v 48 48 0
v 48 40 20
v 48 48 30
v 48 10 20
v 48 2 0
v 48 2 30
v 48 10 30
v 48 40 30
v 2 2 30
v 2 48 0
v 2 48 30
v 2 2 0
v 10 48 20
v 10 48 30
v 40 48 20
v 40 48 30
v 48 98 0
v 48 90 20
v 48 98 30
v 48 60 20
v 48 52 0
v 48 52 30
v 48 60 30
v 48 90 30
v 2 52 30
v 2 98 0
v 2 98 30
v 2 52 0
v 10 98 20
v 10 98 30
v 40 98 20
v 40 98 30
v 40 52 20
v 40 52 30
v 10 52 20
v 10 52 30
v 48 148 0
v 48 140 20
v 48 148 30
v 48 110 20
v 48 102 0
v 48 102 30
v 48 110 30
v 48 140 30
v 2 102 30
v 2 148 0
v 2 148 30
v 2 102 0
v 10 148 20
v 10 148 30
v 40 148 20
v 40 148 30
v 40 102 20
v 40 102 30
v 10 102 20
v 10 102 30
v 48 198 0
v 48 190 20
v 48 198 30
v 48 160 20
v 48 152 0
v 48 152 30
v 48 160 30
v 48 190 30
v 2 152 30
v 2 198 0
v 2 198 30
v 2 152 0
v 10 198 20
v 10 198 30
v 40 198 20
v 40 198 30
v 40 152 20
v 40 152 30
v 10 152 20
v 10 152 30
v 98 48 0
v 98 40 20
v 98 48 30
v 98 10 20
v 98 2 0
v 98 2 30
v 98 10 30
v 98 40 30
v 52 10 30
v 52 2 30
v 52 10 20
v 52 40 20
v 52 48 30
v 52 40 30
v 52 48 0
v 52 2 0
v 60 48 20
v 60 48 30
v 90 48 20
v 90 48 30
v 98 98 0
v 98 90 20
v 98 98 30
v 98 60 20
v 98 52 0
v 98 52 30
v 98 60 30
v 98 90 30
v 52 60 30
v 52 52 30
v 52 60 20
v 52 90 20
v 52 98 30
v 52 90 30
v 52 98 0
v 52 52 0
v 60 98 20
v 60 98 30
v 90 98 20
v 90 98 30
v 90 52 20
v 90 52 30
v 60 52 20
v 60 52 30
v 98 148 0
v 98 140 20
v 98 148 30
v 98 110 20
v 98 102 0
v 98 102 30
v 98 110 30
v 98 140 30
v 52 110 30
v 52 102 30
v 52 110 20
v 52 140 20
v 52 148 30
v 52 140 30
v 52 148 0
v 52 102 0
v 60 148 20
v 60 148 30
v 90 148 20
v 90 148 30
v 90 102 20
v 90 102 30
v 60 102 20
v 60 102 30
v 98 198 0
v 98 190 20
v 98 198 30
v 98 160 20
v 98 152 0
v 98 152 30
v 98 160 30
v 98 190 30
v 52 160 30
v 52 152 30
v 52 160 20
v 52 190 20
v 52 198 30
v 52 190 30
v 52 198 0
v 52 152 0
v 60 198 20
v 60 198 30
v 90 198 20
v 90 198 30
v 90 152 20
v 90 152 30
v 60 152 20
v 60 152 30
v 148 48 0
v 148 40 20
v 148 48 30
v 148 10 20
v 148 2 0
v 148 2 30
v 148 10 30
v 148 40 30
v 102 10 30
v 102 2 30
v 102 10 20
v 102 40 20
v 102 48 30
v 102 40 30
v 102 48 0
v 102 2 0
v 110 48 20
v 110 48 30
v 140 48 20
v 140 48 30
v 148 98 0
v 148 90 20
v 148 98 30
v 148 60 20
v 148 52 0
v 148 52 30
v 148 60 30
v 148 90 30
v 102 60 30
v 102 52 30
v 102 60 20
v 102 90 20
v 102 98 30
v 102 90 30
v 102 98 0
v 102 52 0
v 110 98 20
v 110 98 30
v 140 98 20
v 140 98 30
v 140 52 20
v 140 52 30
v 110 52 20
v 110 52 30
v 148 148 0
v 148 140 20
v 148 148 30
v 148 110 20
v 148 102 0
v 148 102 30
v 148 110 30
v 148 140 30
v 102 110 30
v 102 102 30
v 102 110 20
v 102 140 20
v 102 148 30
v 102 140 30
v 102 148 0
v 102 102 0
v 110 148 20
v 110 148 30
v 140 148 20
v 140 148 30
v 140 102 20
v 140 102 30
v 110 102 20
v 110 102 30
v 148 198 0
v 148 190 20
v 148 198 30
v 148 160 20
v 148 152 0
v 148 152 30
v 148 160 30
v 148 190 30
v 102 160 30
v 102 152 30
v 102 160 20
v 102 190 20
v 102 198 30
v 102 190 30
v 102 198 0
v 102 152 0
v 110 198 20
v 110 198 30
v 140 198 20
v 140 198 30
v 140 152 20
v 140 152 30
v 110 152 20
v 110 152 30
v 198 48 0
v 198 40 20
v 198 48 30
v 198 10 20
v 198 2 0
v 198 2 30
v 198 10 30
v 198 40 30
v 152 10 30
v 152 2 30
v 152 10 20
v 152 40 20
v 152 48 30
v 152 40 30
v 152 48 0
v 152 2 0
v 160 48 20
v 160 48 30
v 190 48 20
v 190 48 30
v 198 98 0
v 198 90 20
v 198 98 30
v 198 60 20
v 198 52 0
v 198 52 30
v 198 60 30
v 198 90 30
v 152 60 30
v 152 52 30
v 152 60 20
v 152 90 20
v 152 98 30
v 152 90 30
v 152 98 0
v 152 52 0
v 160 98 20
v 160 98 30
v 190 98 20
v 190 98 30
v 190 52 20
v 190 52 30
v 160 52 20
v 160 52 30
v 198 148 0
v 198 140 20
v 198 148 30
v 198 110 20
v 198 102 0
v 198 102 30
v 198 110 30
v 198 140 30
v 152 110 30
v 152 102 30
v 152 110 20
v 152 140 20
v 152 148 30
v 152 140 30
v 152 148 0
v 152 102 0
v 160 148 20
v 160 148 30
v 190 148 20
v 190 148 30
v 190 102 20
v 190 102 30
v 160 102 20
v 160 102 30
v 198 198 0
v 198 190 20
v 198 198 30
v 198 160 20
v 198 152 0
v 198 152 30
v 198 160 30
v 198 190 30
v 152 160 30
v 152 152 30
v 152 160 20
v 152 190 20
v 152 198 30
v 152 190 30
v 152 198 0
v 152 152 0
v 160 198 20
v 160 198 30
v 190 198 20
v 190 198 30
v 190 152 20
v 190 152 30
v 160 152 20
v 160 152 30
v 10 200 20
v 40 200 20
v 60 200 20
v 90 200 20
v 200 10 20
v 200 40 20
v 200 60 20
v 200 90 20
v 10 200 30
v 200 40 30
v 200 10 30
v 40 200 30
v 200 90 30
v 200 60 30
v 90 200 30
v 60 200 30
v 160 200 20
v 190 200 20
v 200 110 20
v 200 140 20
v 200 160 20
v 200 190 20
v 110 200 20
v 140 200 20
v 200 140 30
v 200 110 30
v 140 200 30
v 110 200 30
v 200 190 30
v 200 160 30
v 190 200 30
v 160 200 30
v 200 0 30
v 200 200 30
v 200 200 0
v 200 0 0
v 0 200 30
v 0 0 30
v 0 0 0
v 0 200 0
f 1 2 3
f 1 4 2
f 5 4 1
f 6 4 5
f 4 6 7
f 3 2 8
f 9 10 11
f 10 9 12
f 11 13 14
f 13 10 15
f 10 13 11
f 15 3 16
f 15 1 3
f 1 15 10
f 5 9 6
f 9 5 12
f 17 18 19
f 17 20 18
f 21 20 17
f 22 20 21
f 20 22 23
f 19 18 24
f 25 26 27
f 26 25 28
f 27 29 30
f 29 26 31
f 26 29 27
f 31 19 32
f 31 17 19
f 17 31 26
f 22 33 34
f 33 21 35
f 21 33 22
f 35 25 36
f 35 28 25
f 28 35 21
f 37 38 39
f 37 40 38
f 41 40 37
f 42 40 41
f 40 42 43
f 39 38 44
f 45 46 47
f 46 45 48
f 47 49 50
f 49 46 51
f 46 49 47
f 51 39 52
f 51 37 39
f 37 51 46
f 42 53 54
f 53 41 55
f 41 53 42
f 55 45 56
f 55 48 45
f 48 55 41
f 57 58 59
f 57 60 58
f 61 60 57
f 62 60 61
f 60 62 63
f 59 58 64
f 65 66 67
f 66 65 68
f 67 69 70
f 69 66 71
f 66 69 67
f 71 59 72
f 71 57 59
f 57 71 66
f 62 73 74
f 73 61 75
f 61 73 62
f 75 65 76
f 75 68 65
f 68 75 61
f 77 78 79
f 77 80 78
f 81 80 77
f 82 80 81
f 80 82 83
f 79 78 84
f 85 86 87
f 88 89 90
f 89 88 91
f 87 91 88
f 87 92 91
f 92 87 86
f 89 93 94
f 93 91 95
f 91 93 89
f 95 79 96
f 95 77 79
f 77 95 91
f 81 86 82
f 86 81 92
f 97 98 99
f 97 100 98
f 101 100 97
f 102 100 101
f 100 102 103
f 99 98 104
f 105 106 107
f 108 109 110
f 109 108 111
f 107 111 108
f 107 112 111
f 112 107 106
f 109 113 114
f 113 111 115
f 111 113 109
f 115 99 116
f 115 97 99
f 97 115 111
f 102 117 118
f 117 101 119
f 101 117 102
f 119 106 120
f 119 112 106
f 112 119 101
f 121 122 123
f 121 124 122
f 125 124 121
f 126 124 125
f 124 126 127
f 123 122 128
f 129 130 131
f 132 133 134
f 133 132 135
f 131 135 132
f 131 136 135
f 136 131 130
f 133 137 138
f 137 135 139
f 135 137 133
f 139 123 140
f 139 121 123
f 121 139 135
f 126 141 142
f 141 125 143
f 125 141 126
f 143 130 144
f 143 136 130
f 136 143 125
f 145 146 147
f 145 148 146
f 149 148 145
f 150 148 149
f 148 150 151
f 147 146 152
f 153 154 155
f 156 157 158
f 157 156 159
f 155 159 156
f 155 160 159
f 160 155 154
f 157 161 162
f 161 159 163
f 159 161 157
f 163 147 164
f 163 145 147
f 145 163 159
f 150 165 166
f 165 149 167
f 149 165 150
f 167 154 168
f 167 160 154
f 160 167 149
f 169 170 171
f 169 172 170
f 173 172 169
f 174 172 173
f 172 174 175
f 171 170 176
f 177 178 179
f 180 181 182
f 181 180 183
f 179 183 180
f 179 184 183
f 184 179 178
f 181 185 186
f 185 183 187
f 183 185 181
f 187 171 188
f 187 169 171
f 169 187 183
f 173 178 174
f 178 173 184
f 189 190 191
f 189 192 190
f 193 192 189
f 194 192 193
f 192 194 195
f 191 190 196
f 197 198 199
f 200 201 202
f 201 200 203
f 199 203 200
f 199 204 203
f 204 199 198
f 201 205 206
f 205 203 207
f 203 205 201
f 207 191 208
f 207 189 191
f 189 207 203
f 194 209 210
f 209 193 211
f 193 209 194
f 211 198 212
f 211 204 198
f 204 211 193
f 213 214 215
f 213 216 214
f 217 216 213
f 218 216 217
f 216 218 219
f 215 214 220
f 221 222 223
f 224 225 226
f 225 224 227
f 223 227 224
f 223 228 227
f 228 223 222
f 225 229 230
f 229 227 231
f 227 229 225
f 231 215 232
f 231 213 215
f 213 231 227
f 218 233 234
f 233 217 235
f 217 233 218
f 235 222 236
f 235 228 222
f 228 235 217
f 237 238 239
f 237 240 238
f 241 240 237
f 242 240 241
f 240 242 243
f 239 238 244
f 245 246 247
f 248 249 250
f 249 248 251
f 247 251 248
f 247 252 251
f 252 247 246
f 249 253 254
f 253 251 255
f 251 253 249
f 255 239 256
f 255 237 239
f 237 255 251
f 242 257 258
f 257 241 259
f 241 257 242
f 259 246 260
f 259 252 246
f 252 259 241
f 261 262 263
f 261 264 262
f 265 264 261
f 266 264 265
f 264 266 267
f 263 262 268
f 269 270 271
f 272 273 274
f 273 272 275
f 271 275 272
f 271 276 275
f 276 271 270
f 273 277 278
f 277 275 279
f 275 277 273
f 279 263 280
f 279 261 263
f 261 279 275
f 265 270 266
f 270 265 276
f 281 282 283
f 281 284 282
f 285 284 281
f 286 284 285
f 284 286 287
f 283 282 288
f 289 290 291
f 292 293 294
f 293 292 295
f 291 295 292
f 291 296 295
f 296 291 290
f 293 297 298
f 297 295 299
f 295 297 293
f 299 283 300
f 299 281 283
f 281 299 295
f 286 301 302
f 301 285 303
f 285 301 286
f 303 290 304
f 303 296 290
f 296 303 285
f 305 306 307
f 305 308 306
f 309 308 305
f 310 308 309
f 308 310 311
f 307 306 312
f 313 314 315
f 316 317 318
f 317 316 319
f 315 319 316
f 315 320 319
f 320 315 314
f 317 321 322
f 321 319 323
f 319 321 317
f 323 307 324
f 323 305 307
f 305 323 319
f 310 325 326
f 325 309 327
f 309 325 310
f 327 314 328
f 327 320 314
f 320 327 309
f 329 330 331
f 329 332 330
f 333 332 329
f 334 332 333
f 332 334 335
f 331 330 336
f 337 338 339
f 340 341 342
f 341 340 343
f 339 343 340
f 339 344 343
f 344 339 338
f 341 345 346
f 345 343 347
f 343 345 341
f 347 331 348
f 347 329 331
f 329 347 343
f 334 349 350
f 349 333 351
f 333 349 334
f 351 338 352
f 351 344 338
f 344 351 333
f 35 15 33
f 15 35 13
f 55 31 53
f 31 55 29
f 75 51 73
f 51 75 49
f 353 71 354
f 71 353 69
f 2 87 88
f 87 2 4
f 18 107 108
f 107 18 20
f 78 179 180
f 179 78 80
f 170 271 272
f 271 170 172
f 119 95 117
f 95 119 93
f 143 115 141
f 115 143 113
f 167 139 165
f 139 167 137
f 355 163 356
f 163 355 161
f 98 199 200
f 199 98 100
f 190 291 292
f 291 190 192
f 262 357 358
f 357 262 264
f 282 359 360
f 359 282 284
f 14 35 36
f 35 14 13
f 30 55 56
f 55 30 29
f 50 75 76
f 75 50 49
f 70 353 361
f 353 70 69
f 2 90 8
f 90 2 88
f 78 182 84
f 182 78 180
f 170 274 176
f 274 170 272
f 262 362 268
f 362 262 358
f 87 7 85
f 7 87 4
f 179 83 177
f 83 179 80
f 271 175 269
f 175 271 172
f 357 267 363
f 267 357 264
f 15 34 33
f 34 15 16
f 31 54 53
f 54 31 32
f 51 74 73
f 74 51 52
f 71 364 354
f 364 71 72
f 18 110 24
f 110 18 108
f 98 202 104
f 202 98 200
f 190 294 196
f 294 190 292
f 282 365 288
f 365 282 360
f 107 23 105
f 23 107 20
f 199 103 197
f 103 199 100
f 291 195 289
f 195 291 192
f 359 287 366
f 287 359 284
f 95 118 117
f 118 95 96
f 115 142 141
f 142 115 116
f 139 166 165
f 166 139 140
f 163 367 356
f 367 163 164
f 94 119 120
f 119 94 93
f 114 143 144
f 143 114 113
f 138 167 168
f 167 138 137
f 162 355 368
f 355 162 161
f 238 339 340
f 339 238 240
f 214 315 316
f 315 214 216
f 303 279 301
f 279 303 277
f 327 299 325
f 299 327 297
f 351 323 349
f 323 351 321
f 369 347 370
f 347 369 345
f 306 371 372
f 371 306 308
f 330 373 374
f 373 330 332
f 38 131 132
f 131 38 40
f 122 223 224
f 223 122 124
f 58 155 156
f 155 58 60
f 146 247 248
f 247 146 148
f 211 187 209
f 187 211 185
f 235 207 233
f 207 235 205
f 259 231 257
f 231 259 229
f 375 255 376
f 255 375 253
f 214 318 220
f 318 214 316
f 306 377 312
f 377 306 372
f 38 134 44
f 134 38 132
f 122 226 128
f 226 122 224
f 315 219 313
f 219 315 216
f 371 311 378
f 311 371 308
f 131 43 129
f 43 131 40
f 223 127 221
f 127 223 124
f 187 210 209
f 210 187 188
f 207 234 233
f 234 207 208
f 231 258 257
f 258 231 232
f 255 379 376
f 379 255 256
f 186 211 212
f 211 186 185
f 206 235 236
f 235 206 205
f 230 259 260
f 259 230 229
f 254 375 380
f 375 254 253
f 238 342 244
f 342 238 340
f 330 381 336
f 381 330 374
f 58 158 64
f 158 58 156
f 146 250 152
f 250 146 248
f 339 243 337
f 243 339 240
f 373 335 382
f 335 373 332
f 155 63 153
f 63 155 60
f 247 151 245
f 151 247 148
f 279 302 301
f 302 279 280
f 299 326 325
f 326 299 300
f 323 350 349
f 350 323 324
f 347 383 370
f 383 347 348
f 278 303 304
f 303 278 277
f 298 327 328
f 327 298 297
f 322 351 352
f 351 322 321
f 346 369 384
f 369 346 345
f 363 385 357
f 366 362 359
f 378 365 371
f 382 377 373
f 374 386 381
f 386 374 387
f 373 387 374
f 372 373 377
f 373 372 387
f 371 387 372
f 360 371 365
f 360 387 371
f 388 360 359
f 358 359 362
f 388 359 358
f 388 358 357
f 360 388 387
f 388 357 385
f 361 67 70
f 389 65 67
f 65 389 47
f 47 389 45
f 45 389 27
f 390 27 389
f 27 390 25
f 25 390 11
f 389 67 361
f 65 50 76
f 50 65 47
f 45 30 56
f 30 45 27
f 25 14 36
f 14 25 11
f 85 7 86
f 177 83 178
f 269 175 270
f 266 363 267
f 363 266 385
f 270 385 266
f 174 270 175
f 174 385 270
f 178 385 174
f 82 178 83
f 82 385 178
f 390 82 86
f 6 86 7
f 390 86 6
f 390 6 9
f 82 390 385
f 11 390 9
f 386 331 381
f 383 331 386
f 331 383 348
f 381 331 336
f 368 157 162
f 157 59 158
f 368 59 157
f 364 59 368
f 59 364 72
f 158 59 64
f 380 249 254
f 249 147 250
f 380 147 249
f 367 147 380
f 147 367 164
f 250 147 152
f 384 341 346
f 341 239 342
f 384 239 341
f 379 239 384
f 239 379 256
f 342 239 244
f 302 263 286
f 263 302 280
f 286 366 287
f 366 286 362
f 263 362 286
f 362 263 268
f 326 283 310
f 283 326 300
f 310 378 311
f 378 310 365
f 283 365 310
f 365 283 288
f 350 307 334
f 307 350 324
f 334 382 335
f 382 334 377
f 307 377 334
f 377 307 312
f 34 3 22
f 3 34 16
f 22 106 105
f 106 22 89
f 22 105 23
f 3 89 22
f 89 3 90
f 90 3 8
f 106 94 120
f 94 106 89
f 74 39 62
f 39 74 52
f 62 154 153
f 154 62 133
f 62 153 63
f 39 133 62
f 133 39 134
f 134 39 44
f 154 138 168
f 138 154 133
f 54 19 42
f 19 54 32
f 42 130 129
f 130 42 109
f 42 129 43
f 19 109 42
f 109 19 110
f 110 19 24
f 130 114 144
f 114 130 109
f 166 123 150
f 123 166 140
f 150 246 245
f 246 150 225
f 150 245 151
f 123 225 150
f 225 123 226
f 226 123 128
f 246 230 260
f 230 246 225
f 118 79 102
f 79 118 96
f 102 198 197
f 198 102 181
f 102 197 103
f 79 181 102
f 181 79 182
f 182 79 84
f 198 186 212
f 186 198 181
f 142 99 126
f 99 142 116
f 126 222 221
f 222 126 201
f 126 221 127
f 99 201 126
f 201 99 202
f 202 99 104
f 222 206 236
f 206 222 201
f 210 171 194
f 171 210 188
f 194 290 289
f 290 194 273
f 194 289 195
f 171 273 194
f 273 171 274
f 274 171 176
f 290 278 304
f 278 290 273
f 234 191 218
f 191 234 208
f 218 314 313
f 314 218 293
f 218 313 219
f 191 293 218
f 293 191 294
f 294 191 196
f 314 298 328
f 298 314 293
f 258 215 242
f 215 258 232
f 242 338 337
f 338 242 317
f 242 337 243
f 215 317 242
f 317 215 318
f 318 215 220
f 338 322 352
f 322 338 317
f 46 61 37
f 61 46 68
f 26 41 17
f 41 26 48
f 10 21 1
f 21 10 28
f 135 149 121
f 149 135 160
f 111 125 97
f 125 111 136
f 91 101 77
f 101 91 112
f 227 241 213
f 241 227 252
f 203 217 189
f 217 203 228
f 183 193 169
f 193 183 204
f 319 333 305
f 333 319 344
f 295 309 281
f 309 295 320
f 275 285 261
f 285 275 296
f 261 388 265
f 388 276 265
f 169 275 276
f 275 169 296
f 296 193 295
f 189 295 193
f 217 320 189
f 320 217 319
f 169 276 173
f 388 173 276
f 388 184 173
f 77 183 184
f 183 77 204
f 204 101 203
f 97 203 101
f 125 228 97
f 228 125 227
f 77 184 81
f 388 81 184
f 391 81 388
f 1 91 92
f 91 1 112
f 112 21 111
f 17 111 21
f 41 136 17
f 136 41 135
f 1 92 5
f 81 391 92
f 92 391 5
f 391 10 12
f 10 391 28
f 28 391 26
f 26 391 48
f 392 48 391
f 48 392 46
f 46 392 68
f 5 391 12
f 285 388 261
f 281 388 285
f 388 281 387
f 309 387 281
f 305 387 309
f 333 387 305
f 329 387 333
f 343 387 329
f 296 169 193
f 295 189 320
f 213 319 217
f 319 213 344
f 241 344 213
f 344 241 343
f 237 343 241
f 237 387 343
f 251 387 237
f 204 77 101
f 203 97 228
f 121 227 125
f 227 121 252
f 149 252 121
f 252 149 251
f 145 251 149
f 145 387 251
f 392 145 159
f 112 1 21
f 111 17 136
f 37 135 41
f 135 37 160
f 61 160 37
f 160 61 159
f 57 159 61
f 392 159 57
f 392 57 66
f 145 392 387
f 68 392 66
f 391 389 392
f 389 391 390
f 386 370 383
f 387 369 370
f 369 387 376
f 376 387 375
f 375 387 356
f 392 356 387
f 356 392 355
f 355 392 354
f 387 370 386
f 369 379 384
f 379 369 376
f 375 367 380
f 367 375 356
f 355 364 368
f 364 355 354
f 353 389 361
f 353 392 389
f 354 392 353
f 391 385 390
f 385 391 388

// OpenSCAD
$sq = 50;
$wall = 2;
$high = 30;

$inset = 30;
$low = 20;

difference(){
    cube([$sq*4,$sq*4,$high]);
    for ( x = [0 : 3] ){
        for ( y = [0 : 3] ){
            translate([$sq/2+$sq*x,$sq/2+$sq*y,$high/2-.001])
            cube([$sq-$wall*2,$sq-$wall*2,$high+10],center=true);
        }
        // long in x
        translate([$sq*2.7,$sq/2+$sq*x,$high/2+$low])cube([$sq*5,$inset,$high],center=true);
        // long in y
        translate([$sq/2+$sq*x,$sq*2.7,$high/2+$low])cube([$inset,$sq*5,$high],center=true);
    }
}
